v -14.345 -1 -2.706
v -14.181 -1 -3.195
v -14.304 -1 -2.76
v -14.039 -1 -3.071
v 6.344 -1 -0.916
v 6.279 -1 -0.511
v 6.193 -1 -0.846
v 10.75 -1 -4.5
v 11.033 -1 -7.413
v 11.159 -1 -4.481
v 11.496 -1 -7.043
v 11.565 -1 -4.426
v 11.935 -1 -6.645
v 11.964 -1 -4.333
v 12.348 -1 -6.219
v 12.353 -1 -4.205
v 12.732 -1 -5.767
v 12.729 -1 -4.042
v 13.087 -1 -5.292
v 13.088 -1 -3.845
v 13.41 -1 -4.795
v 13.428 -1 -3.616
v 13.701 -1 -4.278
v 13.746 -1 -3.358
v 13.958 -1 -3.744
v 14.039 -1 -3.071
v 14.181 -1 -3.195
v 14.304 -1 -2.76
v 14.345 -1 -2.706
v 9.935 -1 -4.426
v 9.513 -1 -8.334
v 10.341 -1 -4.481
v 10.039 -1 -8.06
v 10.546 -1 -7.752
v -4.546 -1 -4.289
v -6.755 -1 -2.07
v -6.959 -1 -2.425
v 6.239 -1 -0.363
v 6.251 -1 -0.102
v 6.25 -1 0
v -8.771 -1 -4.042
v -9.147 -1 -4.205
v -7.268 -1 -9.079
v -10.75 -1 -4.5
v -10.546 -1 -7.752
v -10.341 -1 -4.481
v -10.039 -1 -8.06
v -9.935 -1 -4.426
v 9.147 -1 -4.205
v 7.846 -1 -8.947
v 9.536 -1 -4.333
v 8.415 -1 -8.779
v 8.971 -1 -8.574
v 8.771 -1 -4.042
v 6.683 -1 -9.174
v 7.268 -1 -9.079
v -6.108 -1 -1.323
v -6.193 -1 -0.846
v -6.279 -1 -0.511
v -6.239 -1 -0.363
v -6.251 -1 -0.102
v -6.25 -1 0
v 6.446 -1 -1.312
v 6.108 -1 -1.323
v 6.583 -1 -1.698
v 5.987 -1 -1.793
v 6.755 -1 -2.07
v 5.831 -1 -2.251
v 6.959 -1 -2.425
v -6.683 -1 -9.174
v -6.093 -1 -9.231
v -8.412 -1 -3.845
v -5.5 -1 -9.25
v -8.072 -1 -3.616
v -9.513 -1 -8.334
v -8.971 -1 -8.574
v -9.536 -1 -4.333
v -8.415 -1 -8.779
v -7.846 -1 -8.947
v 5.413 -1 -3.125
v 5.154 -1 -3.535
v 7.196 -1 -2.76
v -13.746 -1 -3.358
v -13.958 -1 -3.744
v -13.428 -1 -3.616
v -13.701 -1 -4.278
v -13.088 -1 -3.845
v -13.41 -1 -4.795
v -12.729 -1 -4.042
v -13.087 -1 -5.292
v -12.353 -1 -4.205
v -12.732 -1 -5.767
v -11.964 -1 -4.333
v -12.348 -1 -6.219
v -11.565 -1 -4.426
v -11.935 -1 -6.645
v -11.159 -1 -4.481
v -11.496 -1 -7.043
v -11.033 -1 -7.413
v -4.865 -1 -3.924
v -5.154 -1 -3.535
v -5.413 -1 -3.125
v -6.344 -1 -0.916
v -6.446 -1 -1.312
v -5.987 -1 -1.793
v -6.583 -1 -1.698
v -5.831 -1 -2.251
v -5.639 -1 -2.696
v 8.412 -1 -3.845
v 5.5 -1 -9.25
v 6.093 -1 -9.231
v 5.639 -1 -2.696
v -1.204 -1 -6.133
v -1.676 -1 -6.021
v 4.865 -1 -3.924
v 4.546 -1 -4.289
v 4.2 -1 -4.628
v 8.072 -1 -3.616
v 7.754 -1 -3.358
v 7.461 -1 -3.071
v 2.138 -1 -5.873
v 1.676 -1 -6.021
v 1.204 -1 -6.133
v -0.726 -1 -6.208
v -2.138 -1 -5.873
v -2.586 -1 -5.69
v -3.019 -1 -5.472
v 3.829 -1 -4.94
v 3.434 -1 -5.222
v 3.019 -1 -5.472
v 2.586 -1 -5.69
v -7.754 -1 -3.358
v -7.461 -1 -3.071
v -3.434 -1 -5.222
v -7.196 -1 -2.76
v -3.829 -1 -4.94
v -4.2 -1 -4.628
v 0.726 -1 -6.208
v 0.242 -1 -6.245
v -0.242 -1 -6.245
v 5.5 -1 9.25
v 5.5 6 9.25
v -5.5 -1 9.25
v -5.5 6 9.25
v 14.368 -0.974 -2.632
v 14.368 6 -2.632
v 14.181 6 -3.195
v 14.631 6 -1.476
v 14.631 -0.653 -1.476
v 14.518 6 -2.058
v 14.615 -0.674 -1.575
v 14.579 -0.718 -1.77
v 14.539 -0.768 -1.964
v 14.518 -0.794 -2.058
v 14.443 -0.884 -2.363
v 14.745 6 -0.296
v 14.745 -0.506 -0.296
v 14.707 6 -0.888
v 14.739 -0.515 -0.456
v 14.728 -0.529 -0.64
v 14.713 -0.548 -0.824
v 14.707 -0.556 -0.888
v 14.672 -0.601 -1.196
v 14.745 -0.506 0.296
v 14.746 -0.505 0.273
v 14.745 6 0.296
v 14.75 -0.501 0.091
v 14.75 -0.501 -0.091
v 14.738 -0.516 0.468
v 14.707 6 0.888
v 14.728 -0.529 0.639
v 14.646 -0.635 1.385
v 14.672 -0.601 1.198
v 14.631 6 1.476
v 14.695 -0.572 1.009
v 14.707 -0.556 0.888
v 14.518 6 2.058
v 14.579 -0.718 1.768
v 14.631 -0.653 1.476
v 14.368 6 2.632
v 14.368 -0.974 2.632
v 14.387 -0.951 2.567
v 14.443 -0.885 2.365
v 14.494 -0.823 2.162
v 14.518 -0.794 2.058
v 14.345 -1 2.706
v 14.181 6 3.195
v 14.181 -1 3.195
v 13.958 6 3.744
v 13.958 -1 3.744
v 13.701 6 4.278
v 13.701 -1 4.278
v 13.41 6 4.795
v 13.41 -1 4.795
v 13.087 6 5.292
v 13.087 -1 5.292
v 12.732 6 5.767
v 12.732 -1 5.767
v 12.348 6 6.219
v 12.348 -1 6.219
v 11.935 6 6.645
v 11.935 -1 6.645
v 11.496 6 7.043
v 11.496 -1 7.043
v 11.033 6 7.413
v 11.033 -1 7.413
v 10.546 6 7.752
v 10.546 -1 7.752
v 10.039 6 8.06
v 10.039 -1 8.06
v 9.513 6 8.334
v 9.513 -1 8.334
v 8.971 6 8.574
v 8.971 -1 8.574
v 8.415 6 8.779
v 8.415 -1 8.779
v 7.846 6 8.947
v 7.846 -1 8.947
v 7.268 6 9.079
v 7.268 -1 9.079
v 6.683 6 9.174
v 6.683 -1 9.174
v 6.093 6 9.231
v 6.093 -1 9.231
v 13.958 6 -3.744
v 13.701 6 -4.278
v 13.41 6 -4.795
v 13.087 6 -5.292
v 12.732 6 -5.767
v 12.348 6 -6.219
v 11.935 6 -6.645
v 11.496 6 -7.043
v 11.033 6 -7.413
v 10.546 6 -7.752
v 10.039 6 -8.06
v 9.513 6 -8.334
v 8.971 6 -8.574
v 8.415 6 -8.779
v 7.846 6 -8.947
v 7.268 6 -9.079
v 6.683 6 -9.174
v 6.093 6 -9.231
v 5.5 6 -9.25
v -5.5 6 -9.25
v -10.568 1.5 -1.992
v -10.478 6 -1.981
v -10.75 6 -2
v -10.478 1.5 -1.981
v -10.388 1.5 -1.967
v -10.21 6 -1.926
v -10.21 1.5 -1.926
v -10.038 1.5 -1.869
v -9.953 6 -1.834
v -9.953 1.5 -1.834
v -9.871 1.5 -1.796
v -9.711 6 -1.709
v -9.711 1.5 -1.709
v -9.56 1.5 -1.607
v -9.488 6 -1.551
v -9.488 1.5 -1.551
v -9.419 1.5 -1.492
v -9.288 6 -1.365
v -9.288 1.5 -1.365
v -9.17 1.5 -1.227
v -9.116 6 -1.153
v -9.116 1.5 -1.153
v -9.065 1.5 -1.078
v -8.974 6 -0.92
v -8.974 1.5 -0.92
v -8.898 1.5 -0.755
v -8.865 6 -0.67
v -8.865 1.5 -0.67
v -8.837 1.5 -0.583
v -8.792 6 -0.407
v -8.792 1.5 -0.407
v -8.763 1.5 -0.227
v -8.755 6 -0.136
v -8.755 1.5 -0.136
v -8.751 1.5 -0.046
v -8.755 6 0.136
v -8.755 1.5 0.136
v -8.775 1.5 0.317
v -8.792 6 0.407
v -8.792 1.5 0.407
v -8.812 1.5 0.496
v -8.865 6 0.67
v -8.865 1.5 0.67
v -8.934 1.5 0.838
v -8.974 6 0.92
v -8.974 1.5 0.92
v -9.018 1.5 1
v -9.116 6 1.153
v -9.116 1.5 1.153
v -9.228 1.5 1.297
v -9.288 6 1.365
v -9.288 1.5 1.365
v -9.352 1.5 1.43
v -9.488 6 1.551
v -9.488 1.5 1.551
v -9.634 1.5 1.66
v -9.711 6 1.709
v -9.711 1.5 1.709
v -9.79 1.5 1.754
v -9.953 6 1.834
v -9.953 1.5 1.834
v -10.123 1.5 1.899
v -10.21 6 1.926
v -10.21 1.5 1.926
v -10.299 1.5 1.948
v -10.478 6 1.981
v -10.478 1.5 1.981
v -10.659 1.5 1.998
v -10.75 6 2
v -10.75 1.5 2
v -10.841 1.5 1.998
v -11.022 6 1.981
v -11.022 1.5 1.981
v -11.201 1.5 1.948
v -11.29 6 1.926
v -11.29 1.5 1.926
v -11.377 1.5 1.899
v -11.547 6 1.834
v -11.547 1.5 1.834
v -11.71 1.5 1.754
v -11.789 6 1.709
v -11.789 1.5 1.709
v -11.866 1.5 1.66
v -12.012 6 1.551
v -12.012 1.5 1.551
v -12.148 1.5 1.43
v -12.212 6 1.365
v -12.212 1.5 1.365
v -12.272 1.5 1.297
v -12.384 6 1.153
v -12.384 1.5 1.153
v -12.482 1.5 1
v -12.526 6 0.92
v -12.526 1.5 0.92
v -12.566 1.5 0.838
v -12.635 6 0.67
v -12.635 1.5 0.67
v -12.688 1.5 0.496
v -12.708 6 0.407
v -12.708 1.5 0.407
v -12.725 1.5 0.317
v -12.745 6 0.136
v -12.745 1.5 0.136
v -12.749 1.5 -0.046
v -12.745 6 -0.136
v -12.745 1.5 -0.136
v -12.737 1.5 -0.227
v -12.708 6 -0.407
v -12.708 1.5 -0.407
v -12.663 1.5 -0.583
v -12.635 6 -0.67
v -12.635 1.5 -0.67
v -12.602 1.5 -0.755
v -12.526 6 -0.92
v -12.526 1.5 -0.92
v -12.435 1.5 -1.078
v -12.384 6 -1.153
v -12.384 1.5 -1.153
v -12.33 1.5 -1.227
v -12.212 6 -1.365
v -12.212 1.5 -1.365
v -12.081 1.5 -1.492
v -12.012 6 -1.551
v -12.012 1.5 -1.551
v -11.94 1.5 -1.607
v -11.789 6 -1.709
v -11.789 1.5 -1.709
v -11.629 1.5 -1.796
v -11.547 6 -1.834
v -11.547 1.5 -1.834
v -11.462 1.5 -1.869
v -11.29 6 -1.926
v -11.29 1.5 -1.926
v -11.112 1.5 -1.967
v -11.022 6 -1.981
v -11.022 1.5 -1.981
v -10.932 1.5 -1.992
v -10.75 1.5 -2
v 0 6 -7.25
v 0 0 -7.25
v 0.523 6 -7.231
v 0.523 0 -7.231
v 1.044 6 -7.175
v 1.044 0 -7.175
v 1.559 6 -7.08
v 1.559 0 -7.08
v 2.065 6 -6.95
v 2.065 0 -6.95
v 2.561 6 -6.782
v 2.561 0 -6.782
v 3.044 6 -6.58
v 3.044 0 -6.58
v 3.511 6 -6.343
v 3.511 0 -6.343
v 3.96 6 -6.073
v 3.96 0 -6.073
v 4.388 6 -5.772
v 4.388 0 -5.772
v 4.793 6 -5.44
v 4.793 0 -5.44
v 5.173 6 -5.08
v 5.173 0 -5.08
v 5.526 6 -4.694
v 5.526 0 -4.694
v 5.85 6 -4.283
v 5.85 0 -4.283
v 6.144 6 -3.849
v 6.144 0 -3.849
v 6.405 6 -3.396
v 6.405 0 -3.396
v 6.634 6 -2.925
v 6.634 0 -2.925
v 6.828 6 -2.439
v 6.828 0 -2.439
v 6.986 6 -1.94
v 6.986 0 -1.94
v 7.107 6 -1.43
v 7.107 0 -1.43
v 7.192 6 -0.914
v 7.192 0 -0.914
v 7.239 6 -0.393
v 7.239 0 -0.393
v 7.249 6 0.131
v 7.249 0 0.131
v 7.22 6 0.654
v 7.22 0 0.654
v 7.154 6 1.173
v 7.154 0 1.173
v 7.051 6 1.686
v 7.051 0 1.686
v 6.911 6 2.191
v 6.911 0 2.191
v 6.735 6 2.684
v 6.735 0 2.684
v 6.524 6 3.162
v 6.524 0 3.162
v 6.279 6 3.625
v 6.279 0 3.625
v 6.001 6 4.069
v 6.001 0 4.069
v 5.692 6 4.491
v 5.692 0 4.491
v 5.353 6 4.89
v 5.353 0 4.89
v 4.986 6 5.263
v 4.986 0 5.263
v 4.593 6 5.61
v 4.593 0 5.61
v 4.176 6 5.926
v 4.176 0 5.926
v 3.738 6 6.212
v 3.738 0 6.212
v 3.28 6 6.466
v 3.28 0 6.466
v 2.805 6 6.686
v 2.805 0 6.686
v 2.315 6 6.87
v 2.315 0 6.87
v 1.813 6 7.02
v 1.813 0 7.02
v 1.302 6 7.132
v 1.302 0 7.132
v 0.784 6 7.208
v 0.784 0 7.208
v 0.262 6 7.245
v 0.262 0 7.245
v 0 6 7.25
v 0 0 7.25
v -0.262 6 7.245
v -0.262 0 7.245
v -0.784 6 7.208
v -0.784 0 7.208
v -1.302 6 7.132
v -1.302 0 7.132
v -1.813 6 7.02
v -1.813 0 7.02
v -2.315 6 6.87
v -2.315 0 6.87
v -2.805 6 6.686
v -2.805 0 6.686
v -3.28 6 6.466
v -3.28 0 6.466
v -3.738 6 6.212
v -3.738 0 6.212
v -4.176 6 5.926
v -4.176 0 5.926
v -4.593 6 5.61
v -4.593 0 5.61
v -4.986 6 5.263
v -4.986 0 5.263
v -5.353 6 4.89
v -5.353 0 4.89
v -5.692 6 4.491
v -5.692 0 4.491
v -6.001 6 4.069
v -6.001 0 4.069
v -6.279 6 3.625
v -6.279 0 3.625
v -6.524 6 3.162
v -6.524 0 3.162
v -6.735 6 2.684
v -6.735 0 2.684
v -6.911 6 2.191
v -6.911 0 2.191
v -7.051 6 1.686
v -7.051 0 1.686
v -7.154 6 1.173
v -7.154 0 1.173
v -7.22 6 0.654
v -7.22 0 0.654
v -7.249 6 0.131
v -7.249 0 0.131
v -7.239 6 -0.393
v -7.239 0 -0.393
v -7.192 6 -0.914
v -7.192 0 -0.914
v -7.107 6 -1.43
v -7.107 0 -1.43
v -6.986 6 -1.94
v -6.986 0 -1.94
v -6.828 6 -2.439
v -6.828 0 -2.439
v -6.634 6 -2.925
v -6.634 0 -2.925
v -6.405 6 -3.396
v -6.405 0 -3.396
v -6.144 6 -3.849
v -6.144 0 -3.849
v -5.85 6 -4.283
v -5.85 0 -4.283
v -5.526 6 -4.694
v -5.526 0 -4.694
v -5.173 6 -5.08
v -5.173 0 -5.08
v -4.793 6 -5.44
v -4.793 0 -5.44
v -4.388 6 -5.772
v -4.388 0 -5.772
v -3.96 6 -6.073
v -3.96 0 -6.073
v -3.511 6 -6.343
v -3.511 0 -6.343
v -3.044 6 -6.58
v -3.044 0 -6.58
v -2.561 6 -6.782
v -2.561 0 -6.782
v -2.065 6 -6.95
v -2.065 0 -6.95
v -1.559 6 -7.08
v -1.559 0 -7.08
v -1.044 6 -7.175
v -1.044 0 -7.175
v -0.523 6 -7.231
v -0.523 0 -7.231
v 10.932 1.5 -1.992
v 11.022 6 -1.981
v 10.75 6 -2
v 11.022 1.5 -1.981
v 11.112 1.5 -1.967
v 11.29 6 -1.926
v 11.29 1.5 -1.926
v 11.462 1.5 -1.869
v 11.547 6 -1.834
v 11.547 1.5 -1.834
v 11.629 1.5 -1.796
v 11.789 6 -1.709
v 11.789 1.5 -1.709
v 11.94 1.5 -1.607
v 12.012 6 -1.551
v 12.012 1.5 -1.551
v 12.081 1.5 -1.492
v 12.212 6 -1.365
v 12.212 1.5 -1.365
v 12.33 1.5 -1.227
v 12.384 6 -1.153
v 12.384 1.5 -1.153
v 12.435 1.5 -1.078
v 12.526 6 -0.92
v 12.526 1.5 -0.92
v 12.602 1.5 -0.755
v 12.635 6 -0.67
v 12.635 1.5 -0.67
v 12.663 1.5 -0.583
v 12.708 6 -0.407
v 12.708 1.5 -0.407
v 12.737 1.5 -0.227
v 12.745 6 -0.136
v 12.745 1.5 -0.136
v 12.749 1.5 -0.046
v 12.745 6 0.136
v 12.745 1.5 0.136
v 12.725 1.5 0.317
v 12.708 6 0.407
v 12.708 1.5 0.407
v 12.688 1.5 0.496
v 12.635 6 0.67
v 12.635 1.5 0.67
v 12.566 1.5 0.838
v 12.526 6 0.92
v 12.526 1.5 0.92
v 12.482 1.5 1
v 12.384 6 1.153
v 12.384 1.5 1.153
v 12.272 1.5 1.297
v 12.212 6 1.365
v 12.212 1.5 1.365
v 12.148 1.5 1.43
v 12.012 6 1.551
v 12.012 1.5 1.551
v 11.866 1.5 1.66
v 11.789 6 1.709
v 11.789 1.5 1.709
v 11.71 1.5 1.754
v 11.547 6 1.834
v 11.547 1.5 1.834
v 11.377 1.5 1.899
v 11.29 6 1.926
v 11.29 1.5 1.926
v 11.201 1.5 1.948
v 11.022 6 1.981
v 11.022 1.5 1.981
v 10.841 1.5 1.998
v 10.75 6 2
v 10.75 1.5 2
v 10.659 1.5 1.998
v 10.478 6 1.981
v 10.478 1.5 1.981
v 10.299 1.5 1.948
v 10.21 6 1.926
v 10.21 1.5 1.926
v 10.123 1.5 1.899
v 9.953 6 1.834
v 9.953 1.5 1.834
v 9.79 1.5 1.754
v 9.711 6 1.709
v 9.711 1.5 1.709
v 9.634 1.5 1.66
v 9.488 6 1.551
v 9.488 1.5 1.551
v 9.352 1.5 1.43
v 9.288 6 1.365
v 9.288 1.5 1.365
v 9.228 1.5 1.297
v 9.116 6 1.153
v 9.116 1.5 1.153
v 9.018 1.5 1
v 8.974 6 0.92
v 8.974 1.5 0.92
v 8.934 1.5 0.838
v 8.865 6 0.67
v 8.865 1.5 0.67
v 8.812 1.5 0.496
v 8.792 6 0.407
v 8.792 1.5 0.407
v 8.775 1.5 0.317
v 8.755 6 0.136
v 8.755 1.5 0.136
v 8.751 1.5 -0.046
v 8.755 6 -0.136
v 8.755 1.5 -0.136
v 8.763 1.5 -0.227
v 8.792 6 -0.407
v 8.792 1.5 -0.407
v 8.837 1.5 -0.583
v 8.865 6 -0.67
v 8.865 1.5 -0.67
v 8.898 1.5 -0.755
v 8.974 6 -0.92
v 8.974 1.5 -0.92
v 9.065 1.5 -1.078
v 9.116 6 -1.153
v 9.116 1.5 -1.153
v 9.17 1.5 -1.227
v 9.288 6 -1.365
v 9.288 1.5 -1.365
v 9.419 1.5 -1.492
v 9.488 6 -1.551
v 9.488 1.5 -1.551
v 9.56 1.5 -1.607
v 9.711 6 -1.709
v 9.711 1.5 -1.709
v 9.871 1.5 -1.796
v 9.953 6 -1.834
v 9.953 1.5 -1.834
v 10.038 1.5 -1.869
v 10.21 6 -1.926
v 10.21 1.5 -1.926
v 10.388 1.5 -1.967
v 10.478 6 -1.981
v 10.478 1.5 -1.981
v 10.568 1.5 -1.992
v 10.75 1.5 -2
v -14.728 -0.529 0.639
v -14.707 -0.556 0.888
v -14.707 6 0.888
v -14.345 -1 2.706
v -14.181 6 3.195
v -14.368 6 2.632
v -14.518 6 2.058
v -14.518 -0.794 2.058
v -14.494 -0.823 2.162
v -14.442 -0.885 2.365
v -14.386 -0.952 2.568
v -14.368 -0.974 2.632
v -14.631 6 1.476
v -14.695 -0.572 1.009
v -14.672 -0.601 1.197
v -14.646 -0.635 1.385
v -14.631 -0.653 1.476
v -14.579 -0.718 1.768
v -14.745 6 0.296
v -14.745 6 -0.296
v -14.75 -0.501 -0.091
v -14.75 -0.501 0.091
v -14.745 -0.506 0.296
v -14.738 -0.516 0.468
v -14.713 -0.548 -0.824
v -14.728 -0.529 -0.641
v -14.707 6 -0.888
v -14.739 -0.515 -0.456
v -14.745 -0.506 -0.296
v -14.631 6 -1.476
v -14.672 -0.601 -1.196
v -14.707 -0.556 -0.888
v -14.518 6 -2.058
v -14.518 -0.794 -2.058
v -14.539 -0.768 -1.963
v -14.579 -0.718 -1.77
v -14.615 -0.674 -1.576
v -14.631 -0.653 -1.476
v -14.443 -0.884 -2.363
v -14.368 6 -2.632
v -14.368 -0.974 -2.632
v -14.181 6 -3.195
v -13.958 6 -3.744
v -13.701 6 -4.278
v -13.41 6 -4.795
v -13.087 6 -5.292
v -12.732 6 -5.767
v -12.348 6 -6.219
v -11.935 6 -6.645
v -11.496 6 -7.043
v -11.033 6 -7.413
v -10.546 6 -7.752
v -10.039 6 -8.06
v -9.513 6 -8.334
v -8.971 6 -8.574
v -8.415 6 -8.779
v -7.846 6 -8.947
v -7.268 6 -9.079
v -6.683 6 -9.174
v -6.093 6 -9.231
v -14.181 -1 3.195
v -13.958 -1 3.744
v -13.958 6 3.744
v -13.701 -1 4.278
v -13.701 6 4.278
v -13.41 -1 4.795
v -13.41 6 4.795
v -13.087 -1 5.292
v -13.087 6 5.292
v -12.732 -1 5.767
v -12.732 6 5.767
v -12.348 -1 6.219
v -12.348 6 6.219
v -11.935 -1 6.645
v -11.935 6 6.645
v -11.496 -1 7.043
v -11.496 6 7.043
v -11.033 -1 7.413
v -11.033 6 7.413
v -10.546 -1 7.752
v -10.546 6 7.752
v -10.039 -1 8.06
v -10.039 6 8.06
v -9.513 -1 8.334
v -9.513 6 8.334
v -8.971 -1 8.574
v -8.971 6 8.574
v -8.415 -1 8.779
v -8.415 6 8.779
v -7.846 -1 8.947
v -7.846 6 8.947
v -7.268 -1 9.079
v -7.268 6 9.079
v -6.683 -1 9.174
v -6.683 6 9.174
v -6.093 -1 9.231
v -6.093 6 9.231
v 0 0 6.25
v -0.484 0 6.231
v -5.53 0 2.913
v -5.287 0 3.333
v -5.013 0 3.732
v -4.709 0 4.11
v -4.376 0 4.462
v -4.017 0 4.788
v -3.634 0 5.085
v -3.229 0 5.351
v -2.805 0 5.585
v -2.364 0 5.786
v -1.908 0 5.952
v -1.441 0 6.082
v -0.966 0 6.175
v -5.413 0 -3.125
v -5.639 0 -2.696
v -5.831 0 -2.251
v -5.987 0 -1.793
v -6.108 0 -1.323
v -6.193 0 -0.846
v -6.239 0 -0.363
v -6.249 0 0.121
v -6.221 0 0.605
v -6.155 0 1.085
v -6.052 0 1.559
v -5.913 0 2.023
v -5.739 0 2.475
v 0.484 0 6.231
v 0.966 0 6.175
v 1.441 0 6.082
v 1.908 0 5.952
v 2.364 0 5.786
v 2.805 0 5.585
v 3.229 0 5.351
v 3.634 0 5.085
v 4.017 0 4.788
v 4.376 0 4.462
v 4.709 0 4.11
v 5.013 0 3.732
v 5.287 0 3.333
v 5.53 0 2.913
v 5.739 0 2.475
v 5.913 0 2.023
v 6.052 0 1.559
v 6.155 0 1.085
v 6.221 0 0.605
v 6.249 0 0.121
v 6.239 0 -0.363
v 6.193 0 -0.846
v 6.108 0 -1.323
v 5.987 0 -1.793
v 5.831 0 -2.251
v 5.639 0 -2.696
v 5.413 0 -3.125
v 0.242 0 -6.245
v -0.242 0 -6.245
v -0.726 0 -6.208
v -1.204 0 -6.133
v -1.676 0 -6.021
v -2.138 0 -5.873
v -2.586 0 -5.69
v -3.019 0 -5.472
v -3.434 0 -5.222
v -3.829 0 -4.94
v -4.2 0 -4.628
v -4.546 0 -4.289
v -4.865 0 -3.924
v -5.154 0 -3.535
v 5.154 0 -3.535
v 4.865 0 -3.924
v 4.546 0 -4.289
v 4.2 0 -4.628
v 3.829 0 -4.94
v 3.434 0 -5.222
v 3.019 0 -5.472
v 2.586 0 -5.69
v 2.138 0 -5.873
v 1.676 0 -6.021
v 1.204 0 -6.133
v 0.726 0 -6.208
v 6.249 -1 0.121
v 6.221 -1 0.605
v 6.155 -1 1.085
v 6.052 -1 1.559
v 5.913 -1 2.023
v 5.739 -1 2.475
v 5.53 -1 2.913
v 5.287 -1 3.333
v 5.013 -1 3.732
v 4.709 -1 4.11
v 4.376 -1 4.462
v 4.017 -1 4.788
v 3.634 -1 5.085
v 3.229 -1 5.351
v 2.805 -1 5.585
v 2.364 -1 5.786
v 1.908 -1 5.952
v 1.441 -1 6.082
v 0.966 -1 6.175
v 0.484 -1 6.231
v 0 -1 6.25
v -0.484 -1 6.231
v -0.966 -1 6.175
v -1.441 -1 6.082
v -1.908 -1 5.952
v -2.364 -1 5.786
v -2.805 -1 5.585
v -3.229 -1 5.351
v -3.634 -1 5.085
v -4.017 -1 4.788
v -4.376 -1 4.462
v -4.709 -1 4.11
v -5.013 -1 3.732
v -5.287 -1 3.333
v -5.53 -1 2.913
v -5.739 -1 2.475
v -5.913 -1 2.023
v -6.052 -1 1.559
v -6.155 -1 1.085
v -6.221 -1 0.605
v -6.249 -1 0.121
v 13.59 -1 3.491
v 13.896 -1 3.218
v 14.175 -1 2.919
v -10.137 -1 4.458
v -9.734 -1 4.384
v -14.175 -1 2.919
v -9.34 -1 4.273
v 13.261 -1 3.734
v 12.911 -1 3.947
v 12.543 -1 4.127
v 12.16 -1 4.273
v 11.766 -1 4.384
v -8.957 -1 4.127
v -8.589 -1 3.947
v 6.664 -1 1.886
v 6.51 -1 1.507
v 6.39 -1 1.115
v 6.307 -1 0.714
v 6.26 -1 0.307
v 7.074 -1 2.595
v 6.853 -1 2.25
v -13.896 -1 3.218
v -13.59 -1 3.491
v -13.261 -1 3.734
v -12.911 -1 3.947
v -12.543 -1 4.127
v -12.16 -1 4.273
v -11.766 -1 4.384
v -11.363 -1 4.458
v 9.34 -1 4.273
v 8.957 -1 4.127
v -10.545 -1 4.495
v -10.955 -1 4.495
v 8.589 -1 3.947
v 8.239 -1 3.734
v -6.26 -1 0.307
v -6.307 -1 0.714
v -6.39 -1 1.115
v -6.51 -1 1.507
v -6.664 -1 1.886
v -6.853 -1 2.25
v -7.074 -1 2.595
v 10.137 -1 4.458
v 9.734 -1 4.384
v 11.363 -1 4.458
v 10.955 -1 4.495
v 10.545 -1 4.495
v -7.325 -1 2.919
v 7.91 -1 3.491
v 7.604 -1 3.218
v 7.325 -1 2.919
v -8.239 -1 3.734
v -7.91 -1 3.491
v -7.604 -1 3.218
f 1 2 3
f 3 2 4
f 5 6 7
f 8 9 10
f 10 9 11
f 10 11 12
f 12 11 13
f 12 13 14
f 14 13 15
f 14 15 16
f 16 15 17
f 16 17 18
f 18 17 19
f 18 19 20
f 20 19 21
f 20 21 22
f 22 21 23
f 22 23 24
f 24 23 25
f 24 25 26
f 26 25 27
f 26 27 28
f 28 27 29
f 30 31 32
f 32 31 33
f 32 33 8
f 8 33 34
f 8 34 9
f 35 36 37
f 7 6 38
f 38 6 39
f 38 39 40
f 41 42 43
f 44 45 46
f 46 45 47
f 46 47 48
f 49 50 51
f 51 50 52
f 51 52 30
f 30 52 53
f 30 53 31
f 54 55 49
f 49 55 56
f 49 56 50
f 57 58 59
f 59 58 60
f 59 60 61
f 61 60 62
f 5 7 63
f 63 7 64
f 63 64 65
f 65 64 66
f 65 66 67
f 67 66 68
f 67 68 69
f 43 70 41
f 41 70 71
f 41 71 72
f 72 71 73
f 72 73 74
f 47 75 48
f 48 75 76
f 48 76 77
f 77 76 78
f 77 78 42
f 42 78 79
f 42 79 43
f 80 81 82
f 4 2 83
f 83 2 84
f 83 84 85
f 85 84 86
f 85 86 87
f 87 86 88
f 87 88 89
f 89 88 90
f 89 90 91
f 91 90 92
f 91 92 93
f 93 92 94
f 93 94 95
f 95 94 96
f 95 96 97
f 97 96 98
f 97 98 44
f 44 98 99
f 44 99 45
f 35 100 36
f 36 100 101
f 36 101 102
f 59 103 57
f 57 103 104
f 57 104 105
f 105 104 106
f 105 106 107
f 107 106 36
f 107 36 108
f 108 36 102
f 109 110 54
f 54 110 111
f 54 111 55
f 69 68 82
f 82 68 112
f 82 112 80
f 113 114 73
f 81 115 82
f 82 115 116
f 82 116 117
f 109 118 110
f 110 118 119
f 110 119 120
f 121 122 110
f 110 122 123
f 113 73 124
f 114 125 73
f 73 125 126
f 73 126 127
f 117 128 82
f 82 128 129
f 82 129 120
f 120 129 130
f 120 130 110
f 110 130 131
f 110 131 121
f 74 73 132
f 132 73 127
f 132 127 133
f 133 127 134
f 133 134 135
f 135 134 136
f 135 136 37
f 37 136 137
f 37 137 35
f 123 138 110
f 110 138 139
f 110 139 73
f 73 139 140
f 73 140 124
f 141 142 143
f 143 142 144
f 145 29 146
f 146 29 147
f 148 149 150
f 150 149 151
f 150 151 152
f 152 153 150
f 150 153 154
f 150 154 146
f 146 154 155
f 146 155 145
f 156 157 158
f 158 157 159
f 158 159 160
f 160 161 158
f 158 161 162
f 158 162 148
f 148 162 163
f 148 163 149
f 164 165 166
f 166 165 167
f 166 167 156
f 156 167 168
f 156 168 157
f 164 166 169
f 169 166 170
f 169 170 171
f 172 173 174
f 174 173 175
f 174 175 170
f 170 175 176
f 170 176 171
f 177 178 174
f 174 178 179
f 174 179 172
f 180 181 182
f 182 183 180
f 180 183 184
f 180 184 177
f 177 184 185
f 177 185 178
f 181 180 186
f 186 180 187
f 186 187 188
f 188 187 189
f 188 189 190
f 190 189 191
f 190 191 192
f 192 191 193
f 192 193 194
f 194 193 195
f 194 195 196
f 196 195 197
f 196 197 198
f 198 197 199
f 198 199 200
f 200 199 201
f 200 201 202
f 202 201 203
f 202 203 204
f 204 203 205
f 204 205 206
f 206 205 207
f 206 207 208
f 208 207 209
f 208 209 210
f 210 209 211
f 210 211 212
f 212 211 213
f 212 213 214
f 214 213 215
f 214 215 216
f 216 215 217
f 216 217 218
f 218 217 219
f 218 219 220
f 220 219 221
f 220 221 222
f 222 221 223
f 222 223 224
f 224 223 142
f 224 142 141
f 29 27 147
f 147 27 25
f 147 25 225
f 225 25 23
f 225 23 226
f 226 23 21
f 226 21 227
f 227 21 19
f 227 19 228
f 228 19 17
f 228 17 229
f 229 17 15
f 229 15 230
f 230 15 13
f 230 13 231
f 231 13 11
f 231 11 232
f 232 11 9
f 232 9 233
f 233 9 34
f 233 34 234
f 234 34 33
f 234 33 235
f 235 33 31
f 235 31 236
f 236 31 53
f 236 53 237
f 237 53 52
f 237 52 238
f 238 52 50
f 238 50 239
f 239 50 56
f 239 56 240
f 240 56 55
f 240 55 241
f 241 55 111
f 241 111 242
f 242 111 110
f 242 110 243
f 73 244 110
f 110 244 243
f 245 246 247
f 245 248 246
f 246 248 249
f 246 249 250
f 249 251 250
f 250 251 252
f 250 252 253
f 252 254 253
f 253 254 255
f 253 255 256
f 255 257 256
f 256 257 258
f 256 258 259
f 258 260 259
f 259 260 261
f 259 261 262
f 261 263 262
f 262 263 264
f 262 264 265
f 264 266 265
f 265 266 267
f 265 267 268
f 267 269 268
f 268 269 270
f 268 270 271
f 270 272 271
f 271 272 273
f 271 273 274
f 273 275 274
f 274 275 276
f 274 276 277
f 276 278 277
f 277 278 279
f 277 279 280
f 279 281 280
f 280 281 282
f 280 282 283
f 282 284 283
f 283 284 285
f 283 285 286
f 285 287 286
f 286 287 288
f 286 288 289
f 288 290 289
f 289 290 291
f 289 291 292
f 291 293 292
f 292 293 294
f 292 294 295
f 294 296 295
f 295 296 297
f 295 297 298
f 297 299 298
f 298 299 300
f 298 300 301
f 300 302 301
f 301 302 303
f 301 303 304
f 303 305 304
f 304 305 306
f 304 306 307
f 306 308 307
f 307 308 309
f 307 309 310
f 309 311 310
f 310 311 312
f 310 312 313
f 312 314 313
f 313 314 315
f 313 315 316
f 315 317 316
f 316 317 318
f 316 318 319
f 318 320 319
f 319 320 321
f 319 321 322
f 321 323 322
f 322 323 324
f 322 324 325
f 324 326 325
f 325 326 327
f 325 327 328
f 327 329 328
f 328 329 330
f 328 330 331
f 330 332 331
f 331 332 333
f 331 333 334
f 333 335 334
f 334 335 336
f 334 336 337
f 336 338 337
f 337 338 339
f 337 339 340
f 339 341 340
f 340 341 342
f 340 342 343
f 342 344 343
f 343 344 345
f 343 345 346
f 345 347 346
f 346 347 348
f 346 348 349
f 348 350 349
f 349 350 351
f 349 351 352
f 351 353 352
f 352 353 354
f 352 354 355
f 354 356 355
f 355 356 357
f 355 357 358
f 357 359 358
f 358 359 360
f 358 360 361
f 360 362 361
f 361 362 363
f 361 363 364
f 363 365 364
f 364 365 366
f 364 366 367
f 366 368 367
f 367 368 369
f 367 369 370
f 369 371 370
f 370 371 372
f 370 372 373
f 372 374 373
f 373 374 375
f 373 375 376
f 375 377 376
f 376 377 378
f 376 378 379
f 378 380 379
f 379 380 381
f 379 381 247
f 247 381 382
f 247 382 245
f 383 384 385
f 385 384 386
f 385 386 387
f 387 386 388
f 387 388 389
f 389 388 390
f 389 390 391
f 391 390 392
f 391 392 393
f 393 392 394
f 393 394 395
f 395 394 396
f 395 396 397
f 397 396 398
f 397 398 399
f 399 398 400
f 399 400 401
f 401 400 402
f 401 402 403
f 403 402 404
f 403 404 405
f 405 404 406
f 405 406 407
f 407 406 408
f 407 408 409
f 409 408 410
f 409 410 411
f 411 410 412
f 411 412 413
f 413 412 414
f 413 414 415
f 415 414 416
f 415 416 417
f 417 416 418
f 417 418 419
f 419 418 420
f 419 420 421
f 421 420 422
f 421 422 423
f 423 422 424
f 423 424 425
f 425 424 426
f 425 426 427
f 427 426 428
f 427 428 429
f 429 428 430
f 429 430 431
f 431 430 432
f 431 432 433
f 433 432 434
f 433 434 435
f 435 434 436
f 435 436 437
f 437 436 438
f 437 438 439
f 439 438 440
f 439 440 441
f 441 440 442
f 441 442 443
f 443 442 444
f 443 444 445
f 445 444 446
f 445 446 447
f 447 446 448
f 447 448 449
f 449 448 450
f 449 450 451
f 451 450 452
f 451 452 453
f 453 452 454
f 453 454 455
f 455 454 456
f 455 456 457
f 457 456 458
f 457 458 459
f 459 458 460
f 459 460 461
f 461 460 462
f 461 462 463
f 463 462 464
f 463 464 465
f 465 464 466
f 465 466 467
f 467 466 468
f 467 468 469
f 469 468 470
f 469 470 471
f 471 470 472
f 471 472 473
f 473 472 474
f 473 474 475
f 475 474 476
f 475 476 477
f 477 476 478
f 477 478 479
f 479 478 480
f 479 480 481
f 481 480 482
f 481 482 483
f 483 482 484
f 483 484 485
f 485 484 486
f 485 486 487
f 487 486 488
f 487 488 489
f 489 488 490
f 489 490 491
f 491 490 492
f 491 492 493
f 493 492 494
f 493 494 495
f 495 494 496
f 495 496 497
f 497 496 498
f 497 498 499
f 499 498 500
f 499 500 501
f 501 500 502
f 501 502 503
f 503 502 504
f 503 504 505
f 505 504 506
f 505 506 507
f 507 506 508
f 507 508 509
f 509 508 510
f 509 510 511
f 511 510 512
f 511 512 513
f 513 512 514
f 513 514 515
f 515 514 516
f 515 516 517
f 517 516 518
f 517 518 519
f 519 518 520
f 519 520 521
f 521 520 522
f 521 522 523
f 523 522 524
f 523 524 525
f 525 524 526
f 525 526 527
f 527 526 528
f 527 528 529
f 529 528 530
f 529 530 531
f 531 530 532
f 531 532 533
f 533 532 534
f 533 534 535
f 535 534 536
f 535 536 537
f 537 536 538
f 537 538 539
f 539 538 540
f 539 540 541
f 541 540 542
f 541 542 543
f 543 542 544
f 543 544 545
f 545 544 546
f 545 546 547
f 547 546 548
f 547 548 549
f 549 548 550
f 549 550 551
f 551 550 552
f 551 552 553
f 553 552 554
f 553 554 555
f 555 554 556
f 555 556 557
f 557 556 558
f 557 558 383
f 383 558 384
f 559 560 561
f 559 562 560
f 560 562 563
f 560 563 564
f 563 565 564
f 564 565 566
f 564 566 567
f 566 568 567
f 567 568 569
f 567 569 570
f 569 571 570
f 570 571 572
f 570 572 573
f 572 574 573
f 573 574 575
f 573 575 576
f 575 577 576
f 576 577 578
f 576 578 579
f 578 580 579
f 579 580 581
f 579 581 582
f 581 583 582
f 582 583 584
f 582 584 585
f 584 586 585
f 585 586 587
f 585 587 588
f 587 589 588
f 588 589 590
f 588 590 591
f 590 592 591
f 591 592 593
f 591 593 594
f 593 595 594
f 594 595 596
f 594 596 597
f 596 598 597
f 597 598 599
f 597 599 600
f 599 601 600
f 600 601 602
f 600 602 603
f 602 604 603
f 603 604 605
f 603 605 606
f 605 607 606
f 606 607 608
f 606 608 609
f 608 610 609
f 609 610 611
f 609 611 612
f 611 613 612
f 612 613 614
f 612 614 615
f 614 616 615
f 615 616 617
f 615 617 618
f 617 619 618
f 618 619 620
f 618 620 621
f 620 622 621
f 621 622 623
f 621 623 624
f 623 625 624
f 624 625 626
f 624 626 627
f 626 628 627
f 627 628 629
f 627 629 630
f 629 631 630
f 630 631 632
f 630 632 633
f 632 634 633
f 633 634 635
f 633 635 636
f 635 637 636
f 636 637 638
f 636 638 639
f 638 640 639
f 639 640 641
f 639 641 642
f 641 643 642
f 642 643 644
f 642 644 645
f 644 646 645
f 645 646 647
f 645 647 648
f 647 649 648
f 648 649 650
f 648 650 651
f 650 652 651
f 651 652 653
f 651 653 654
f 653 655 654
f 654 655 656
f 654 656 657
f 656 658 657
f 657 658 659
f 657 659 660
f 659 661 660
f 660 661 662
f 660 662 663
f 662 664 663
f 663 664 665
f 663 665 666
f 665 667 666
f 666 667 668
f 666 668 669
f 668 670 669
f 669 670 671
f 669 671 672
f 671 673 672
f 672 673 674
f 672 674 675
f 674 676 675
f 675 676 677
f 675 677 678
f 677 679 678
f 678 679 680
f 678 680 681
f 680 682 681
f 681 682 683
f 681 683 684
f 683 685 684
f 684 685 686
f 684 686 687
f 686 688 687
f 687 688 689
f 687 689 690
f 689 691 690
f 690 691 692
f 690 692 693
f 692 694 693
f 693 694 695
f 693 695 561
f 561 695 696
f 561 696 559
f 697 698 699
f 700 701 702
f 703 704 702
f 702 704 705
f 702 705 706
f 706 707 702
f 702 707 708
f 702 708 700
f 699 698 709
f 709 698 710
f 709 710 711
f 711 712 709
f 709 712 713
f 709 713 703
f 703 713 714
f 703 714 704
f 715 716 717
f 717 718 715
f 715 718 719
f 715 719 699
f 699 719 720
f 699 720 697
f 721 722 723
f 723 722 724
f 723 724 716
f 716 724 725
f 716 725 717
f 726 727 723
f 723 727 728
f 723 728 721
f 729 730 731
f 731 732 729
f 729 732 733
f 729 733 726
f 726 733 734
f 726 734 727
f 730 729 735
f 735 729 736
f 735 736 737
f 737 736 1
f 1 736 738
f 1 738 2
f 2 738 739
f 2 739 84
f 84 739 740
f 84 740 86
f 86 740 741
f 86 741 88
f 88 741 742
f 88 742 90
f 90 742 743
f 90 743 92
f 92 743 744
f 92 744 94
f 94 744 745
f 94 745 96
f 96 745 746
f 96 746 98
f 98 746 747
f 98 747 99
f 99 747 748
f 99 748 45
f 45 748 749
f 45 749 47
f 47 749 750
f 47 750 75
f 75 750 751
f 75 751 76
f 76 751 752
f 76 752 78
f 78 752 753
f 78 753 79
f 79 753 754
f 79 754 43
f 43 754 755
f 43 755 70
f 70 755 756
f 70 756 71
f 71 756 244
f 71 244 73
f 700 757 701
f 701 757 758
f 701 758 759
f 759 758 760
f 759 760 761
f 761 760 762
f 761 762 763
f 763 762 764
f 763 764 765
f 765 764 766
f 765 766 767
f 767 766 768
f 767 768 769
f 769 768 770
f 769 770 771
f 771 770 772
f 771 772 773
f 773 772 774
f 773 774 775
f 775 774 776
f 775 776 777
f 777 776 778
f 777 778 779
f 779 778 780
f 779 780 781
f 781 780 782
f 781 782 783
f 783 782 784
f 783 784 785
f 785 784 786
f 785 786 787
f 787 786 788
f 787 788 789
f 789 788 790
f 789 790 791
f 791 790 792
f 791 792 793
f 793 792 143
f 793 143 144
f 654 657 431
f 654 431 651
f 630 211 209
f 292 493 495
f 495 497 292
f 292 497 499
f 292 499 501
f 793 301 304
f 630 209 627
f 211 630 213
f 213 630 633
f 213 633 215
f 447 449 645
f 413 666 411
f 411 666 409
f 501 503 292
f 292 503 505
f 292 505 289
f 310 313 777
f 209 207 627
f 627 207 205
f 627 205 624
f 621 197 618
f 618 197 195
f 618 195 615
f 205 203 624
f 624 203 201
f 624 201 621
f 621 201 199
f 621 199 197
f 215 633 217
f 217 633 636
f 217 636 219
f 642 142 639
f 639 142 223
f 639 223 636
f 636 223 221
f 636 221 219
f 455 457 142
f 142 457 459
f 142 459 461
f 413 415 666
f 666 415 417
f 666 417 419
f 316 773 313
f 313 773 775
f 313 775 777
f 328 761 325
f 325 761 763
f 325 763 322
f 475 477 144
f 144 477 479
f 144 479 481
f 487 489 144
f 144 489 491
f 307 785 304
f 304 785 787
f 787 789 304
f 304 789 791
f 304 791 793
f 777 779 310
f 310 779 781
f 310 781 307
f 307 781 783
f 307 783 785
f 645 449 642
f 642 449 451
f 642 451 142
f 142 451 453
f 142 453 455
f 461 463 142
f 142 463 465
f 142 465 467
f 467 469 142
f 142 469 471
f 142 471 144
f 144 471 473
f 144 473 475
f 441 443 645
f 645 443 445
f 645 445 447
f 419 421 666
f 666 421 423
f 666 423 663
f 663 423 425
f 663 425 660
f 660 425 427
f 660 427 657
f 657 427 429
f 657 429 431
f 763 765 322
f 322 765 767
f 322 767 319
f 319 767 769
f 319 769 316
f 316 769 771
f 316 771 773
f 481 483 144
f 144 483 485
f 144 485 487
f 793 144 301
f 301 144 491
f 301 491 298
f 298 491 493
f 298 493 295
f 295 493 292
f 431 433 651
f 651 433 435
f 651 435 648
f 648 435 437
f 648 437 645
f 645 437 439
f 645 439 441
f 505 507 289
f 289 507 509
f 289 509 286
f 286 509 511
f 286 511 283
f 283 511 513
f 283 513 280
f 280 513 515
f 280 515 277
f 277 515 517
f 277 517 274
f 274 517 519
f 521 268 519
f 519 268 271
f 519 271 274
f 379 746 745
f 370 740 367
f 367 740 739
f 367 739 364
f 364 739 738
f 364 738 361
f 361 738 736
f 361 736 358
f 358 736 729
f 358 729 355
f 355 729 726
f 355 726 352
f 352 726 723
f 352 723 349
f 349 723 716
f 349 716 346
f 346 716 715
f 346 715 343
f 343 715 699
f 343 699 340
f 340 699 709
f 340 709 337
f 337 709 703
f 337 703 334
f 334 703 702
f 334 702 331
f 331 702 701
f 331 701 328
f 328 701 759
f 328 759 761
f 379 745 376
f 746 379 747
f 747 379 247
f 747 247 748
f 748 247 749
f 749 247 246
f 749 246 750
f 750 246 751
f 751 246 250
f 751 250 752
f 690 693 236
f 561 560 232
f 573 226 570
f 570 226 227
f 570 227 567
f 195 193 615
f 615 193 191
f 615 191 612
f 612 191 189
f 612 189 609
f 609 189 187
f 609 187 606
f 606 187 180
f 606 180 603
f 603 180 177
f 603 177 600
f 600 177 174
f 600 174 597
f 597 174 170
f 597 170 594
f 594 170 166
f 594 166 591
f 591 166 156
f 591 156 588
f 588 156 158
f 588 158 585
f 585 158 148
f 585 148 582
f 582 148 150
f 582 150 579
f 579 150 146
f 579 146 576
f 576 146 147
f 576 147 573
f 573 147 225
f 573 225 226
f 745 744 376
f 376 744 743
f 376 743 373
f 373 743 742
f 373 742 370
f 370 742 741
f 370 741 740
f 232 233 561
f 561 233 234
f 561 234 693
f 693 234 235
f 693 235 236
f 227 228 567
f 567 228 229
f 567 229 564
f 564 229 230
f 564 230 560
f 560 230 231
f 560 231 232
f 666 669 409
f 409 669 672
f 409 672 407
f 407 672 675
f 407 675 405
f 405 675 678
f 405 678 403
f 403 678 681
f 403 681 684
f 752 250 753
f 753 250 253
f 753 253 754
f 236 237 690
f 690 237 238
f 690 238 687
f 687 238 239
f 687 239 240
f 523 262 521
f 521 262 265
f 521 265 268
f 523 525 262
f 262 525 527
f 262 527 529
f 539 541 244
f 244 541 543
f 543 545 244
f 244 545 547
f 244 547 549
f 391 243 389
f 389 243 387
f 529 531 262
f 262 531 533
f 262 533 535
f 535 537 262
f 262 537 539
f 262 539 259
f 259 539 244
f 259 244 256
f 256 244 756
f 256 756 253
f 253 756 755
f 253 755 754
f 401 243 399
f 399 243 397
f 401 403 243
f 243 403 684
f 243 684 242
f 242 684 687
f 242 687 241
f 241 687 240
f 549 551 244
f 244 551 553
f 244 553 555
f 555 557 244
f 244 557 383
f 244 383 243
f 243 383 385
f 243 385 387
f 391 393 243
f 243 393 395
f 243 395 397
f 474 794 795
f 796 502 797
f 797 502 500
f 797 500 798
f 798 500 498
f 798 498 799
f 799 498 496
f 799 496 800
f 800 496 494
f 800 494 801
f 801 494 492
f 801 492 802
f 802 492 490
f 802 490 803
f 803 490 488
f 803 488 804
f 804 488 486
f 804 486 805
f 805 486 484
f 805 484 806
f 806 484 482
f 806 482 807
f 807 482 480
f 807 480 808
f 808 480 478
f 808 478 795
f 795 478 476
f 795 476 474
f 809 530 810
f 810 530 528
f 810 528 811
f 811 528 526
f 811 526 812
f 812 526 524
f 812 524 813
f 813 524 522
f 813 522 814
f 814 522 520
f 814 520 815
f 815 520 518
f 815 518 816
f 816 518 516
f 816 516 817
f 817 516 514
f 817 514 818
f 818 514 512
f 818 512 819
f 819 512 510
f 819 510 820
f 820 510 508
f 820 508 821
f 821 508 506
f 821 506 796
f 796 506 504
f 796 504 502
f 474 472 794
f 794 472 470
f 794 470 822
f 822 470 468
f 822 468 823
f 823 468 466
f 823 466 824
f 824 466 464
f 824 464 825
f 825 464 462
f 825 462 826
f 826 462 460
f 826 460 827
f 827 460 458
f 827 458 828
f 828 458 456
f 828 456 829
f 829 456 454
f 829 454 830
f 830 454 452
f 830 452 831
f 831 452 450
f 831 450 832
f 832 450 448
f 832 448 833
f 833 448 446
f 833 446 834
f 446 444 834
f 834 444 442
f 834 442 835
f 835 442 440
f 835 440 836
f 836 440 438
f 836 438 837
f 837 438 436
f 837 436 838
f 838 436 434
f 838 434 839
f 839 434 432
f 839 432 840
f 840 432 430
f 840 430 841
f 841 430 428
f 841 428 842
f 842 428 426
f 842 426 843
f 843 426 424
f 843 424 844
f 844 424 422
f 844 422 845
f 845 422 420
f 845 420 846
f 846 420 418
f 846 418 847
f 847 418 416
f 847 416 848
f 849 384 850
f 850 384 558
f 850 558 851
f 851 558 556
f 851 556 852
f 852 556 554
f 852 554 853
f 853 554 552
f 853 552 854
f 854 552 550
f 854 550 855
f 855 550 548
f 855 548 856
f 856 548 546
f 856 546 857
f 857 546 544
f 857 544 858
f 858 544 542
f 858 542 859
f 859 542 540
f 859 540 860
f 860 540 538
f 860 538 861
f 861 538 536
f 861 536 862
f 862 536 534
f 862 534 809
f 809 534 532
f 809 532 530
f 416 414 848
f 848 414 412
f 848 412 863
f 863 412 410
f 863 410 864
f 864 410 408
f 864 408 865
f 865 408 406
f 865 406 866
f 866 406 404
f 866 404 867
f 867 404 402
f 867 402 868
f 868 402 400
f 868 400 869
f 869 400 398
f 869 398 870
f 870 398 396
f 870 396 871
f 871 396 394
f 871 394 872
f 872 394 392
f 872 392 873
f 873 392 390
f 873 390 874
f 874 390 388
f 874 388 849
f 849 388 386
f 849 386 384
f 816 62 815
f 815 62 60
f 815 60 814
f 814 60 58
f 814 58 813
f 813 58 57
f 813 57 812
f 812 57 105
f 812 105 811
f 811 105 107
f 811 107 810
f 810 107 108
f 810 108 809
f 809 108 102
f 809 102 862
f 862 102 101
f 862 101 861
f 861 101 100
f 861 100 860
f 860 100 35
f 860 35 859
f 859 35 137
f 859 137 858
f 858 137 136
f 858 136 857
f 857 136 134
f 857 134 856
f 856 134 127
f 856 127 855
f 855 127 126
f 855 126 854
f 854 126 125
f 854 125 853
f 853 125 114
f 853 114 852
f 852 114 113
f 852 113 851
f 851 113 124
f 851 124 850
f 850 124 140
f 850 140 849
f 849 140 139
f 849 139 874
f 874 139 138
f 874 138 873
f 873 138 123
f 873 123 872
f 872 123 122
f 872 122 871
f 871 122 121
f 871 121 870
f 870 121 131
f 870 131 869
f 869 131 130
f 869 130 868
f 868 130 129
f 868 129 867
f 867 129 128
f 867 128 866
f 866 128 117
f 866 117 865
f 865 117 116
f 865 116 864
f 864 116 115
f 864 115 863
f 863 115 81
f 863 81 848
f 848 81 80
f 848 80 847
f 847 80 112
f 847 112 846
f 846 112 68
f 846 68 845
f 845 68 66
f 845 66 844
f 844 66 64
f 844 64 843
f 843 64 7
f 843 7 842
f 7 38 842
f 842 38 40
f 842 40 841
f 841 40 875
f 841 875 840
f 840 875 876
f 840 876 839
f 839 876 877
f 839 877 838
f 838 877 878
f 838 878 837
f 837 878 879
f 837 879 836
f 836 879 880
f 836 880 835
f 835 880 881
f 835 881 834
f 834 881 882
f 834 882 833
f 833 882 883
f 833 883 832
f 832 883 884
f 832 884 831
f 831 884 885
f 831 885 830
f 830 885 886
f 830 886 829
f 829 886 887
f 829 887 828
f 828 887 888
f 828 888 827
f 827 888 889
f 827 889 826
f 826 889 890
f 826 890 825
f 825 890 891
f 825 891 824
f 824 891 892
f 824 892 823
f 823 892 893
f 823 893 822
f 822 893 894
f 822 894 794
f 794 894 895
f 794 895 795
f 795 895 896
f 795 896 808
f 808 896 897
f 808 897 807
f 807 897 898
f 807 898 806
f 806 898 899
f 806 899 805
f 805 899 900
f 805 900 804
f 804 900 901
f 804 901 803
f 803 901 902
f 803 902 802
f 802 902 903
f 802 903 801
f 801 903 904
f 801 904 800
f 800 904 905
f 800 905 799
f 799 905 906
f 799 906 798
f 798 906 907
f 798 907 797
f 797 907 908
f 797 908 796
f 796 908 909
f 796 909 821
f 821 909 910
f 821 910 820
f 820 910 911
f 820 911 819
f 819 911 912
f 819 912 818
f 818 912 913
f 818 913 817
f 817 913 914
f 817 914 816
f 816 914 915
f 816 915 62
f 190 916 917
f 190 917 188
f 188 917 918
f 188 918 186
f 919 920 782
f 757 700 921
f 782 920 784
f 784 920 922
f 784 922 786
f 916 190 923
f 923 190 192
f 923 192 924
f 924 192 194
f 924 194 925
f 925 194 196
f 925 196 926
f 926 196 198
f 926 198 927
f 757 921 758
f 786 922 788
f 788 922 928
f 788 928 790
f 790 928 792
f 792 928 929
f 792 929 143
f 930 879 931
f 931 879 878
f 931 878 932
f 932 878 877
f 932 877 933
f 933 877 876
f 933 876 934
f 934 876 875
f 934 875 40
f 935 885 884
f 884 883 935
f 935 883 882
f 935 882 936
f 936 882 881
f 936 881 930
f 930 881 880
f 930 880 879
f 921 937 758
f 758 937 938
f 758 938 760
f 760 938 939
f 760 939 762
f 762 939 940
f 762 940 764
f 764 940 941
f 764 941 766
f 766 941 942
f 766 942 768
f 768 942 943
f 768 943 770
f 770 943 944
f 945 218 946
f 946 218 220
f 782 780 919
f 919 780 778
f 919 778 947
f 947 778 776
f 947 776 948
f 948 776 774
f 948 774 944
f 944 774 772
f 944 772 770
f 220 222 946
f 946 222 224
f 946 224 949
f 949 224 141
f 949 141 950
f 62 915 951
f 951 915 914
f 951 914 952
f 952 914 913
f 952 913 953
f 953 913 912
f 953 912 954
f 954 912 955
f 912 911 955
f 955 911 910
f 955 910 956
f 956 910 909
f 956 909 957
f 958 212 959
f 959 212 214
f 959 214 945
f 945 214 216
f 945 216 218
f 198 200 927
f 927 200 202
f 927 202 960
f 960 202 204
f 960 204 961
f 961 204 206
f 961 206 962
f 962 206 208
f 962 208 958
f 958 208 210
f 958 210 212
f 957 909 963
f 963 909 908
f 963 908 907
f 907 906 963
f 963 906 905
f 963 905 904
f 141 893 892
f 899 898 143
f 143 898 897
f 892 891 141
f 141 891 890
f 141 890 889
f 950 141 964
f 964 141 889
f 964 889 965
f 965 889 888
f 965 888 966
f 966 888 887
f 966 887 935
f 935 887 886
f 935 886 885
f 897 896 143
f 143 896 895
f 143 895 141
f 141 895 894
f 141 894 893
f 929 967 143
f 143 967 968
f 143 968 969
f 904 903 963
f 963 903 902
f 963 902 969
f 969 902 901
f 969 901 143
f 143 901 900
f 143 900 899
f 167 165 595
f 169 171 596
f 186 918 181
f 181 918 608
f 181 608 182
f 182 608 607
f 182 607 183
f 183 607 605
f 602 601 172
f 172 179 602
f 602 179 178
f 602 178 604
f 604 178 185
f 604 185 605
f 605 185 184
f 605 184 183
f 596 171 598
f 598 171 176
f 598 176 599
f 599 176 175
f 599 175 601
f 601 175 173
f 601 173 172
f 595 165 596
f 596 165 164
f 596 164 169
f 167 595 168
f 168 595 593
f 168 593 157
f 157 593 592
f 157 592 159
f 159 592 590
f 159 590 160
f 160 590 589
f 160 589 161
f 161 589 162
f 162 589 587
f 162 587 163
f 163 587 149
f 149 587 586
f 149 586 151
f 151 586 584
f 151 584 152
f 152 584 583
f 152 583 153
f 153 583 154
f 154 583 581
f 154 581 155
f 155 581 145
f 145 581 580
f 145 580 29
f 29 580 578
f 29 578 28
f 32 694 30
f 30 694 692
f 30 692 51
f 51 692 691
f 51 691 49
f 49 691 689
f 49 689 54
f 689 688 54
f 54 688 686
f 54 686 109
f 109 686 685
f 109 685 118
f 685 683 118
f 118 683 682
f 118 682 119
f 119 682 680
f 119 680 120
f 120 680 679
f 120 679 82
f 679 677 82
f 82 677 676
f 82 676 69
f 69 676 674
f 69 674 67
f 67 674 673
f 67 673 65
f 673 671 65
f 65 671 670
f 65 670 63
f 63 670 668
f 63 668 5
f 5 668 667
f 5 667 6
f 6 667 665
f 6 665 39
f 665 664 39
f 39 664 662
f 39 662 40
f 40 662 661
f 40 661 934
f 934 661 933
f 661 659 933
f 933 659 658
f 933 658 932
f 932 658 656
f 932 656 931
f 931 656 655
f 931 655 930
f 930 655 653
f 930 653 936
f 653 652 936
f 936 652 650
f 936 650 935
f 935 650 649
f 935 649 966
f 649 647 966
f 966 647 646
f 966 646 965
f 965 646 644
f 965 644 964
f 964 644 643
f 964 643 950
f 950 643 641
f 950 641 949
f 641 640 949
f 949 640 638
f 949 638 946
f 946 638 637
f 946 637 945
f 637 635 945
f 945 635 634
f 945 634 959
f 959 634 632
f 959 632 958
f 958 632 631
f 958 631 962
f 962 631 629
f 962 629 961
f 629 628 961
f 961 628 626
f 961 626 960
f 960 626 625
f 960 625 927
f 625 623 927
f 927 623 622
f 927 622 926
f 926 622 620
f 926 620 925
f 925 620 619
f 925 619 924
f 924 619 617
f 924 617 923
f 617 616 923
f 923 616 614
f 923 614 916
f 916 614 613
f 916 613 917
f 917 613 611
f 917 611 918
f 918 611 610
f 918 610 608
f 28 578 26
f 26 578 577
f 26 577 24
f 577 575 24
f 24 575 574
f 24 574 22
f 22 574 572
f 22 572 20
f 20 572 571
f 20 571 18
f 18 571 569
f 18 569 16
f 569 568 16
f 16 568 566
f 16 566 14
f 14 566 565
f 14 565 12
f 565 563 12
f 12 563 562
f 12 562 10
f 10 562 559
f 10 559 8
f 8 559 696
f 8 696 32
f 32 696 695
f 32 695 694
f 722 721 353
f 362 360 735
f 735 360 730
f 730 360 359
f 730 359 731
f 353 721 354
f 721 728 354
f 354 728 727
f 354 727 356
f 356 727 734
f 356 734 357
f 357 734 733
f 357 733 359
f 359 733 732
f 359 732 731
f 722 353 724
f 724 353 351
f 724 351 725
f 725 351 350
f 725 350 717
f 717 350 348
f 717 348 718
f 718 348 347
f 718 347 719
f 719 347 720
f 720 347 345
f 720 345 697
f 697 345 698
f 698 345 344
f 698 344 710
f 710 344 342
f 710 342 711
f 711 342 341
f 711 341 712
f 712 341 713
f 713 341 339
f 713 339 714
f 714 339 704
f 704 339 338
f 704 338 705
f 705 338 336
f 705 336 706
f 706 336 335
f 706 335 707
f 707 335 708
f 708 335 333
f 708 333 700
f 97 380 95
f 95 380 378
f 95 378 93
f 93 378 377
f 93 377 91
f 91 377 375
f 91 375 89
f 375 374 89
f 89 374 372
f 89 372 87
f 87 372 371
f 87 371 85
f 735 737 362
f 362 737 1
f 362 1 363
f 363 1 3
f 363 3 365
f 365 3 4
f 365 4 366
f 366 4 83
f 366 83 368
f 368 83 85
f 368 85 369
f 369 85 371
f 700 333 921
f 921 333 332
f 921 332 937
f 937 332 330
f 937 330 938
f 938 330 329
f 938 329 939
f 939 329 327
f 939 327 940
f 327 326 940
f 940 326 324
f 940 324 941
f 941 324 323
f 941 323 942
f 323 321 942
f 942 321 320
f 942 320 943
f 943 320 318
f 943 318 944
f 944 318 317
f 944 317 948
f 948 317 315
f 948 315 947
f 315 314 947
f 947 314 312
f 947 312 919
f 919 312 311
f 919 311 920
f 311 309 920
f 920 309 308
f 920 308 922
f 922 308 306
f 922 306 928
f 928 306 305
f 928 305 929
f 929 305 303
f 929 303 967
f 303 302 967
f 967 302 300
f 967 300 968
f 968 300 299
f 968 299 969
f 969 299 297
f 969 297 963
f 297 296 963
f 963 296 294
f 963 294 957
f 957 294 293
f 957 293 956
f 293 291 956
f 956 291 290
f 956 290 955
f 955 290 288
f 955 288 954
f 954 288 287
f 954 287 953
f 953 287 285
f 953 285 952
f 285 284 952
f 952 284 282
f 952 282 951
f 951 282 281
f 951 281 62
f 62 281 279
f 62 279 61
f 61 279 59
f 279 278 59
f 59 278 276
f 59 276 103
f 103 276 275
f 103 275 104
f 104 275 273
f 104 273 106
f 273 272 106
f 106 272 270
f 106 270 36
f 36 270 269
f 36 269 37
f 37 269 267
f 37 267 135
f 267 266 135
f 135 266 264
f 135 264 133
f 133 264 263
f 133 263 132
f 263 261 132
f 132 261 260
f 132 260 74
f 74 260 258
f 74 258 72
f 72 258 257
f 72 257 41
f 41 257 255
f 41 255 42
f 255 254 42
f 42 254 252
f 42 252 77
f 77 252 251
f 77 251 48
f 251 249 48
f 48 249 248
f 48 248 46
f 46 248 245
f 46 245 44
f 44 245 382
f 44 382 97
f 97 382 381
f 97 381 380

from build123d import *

# Parameters (mm, degrees)
SKETCH1_R           = 2
SKETCH1_R_2         = 7.25
BOSS_EXTRUDE1_DEPTH = 6
BOSS_EXTRUDE2_START = -1
SKETCH1_3_R         = 2
SKETCH1_3_R_2       = 7.25
SKETCH1_3_R_3       = 6.25
BOSS_EXTRUDE2_DEPTH = 1
CHAMFER1_SIZE       = 2.5


with BuildPart() as part:
    # Sketch1 → Boss-Extrude1 (new body)
    with BuildSketch(Plane(origin=(0, 0, 0), x_dir=(1, 0, 0), z_dir=(0, 1, 0))):
        with BuildLine():
            Line((-5.5, -9.25), (5.5, -9.25))
            ThreePointArc((5.5, -9.25), (14.75, 0), (5.5, 9.25))
            Line((5.5, 9.25), (-5.5, 9.25))
            ThreePointArc((-5.5, 9.25), (-14.75, 0), (-5.5, -9.25))
        make_face()
        with Locations(Location((10.75, 0, 0), (0, 0, 270))):
            Circle(SKETCH1_R, mode=Mode.SUBTRACT)
        with Locations(Location((0, 0, 0), (0, 0, 270))):
            Circle(SKETCH1_R_2, mode=Mode.SUBTRACT)
        with Locations(Location((-10.75, 0, 0), (0, 0, 270))):
            Circle(SKETCH1_R, mode=Mode.SUBTRACT)
    extrude(amount=BOSS_EXTRUDE1_DEPTH)

    # Sketch1<3> → Boss-Extrude2 (add)
    # profile 1 of 2: a face of its own
    with BuildSketch(Plane(origin=(0, 0, 0), x_dir=(1, 0, 0), z_dir=(0, 1, 0)).offset(BOSS_EXTRUDE2_START)):
        with BuildLine():
            Line((-5.5, -9.25), (5.5, -9.25))
            ThreePointArc((5.5, -9.25), (14.75, 0), (5.5, 9.25))
            Line((5.5, 9.25), (-5.5, 9.25))
            ThreePointArc((-5.5, 9.25), (-14.75, 0), (-5.5, -9.25))
        make_face()
        with Locations(Location((10.75, 0, 0), (0, 0, 270))):
            Circle(SKETCH1_3_R, mode=Mode.SUBTRACT)
        with Locations(Location((0, 0, 0), (0, 0, 270))):
            Circle(SKETCH1_3_R_2, mode=Mode.SUBTRACT)
        with Locations(Location((-10.75, 0, 0), (0, 0, 270))):
            Circle(SKETCH1_3_R, mode=Mode.SUBTRACT)
    # profile 2 of 2: a face of its own
    with BuildSketch(Plane(origin=(0, 0, 0), x_dir=(1, 0, 0), z_dir=(0, 1, 0)).offset(BOSS_EXTRUDE2_START)):
        with Locations(Location((0, 0, 0), (0, 0, 270))):
            Circle(SKETCH1_3_R_2)
        with Locations(Location((0, 0, 0), (0, 0, 270))):
            Circle(SKETCH1_3_R_3, mode=Mode.SUBTRACT)
    extrude(amount=BOSS_EXTRUDE2_DEPTH)

    # Chamfer1
    # the kernel refuses this chamfer: 2.5 mm, written as the material it takes off along each edge
    with BuildSketch(Plane(origin=(10.75, -1, 0), x_dir=(0, 0, 1), z_dir=(-1, 0, 0))) as chamfer1_piece_1:
        Polygon((2 + CHAMFER1_SIZE, 0), (2, CHAMFER1_SIZE), (2, 0), align=None)
    revolve(axis=Axis((10.75, -1, 0), (0, 1, 0)), mode=Mode.SUBTRACT)
    with BuildSketch(Plane(origin=(-10.75, -1, 0), x_dir=(0, 0, 1), z_dir=(-1, 0, 0))) as chamfer1_piece_2:
        Polygon((2 + CHAMFER1_SIZE, 0), (2, CHAMFER1_SIZE), (2, 0), align=None)
    revolve(axis=Axis((-10.75, -1, 0), (0, 1, 0)), mode=Mode.SUBTRACT)


solid = part.part
